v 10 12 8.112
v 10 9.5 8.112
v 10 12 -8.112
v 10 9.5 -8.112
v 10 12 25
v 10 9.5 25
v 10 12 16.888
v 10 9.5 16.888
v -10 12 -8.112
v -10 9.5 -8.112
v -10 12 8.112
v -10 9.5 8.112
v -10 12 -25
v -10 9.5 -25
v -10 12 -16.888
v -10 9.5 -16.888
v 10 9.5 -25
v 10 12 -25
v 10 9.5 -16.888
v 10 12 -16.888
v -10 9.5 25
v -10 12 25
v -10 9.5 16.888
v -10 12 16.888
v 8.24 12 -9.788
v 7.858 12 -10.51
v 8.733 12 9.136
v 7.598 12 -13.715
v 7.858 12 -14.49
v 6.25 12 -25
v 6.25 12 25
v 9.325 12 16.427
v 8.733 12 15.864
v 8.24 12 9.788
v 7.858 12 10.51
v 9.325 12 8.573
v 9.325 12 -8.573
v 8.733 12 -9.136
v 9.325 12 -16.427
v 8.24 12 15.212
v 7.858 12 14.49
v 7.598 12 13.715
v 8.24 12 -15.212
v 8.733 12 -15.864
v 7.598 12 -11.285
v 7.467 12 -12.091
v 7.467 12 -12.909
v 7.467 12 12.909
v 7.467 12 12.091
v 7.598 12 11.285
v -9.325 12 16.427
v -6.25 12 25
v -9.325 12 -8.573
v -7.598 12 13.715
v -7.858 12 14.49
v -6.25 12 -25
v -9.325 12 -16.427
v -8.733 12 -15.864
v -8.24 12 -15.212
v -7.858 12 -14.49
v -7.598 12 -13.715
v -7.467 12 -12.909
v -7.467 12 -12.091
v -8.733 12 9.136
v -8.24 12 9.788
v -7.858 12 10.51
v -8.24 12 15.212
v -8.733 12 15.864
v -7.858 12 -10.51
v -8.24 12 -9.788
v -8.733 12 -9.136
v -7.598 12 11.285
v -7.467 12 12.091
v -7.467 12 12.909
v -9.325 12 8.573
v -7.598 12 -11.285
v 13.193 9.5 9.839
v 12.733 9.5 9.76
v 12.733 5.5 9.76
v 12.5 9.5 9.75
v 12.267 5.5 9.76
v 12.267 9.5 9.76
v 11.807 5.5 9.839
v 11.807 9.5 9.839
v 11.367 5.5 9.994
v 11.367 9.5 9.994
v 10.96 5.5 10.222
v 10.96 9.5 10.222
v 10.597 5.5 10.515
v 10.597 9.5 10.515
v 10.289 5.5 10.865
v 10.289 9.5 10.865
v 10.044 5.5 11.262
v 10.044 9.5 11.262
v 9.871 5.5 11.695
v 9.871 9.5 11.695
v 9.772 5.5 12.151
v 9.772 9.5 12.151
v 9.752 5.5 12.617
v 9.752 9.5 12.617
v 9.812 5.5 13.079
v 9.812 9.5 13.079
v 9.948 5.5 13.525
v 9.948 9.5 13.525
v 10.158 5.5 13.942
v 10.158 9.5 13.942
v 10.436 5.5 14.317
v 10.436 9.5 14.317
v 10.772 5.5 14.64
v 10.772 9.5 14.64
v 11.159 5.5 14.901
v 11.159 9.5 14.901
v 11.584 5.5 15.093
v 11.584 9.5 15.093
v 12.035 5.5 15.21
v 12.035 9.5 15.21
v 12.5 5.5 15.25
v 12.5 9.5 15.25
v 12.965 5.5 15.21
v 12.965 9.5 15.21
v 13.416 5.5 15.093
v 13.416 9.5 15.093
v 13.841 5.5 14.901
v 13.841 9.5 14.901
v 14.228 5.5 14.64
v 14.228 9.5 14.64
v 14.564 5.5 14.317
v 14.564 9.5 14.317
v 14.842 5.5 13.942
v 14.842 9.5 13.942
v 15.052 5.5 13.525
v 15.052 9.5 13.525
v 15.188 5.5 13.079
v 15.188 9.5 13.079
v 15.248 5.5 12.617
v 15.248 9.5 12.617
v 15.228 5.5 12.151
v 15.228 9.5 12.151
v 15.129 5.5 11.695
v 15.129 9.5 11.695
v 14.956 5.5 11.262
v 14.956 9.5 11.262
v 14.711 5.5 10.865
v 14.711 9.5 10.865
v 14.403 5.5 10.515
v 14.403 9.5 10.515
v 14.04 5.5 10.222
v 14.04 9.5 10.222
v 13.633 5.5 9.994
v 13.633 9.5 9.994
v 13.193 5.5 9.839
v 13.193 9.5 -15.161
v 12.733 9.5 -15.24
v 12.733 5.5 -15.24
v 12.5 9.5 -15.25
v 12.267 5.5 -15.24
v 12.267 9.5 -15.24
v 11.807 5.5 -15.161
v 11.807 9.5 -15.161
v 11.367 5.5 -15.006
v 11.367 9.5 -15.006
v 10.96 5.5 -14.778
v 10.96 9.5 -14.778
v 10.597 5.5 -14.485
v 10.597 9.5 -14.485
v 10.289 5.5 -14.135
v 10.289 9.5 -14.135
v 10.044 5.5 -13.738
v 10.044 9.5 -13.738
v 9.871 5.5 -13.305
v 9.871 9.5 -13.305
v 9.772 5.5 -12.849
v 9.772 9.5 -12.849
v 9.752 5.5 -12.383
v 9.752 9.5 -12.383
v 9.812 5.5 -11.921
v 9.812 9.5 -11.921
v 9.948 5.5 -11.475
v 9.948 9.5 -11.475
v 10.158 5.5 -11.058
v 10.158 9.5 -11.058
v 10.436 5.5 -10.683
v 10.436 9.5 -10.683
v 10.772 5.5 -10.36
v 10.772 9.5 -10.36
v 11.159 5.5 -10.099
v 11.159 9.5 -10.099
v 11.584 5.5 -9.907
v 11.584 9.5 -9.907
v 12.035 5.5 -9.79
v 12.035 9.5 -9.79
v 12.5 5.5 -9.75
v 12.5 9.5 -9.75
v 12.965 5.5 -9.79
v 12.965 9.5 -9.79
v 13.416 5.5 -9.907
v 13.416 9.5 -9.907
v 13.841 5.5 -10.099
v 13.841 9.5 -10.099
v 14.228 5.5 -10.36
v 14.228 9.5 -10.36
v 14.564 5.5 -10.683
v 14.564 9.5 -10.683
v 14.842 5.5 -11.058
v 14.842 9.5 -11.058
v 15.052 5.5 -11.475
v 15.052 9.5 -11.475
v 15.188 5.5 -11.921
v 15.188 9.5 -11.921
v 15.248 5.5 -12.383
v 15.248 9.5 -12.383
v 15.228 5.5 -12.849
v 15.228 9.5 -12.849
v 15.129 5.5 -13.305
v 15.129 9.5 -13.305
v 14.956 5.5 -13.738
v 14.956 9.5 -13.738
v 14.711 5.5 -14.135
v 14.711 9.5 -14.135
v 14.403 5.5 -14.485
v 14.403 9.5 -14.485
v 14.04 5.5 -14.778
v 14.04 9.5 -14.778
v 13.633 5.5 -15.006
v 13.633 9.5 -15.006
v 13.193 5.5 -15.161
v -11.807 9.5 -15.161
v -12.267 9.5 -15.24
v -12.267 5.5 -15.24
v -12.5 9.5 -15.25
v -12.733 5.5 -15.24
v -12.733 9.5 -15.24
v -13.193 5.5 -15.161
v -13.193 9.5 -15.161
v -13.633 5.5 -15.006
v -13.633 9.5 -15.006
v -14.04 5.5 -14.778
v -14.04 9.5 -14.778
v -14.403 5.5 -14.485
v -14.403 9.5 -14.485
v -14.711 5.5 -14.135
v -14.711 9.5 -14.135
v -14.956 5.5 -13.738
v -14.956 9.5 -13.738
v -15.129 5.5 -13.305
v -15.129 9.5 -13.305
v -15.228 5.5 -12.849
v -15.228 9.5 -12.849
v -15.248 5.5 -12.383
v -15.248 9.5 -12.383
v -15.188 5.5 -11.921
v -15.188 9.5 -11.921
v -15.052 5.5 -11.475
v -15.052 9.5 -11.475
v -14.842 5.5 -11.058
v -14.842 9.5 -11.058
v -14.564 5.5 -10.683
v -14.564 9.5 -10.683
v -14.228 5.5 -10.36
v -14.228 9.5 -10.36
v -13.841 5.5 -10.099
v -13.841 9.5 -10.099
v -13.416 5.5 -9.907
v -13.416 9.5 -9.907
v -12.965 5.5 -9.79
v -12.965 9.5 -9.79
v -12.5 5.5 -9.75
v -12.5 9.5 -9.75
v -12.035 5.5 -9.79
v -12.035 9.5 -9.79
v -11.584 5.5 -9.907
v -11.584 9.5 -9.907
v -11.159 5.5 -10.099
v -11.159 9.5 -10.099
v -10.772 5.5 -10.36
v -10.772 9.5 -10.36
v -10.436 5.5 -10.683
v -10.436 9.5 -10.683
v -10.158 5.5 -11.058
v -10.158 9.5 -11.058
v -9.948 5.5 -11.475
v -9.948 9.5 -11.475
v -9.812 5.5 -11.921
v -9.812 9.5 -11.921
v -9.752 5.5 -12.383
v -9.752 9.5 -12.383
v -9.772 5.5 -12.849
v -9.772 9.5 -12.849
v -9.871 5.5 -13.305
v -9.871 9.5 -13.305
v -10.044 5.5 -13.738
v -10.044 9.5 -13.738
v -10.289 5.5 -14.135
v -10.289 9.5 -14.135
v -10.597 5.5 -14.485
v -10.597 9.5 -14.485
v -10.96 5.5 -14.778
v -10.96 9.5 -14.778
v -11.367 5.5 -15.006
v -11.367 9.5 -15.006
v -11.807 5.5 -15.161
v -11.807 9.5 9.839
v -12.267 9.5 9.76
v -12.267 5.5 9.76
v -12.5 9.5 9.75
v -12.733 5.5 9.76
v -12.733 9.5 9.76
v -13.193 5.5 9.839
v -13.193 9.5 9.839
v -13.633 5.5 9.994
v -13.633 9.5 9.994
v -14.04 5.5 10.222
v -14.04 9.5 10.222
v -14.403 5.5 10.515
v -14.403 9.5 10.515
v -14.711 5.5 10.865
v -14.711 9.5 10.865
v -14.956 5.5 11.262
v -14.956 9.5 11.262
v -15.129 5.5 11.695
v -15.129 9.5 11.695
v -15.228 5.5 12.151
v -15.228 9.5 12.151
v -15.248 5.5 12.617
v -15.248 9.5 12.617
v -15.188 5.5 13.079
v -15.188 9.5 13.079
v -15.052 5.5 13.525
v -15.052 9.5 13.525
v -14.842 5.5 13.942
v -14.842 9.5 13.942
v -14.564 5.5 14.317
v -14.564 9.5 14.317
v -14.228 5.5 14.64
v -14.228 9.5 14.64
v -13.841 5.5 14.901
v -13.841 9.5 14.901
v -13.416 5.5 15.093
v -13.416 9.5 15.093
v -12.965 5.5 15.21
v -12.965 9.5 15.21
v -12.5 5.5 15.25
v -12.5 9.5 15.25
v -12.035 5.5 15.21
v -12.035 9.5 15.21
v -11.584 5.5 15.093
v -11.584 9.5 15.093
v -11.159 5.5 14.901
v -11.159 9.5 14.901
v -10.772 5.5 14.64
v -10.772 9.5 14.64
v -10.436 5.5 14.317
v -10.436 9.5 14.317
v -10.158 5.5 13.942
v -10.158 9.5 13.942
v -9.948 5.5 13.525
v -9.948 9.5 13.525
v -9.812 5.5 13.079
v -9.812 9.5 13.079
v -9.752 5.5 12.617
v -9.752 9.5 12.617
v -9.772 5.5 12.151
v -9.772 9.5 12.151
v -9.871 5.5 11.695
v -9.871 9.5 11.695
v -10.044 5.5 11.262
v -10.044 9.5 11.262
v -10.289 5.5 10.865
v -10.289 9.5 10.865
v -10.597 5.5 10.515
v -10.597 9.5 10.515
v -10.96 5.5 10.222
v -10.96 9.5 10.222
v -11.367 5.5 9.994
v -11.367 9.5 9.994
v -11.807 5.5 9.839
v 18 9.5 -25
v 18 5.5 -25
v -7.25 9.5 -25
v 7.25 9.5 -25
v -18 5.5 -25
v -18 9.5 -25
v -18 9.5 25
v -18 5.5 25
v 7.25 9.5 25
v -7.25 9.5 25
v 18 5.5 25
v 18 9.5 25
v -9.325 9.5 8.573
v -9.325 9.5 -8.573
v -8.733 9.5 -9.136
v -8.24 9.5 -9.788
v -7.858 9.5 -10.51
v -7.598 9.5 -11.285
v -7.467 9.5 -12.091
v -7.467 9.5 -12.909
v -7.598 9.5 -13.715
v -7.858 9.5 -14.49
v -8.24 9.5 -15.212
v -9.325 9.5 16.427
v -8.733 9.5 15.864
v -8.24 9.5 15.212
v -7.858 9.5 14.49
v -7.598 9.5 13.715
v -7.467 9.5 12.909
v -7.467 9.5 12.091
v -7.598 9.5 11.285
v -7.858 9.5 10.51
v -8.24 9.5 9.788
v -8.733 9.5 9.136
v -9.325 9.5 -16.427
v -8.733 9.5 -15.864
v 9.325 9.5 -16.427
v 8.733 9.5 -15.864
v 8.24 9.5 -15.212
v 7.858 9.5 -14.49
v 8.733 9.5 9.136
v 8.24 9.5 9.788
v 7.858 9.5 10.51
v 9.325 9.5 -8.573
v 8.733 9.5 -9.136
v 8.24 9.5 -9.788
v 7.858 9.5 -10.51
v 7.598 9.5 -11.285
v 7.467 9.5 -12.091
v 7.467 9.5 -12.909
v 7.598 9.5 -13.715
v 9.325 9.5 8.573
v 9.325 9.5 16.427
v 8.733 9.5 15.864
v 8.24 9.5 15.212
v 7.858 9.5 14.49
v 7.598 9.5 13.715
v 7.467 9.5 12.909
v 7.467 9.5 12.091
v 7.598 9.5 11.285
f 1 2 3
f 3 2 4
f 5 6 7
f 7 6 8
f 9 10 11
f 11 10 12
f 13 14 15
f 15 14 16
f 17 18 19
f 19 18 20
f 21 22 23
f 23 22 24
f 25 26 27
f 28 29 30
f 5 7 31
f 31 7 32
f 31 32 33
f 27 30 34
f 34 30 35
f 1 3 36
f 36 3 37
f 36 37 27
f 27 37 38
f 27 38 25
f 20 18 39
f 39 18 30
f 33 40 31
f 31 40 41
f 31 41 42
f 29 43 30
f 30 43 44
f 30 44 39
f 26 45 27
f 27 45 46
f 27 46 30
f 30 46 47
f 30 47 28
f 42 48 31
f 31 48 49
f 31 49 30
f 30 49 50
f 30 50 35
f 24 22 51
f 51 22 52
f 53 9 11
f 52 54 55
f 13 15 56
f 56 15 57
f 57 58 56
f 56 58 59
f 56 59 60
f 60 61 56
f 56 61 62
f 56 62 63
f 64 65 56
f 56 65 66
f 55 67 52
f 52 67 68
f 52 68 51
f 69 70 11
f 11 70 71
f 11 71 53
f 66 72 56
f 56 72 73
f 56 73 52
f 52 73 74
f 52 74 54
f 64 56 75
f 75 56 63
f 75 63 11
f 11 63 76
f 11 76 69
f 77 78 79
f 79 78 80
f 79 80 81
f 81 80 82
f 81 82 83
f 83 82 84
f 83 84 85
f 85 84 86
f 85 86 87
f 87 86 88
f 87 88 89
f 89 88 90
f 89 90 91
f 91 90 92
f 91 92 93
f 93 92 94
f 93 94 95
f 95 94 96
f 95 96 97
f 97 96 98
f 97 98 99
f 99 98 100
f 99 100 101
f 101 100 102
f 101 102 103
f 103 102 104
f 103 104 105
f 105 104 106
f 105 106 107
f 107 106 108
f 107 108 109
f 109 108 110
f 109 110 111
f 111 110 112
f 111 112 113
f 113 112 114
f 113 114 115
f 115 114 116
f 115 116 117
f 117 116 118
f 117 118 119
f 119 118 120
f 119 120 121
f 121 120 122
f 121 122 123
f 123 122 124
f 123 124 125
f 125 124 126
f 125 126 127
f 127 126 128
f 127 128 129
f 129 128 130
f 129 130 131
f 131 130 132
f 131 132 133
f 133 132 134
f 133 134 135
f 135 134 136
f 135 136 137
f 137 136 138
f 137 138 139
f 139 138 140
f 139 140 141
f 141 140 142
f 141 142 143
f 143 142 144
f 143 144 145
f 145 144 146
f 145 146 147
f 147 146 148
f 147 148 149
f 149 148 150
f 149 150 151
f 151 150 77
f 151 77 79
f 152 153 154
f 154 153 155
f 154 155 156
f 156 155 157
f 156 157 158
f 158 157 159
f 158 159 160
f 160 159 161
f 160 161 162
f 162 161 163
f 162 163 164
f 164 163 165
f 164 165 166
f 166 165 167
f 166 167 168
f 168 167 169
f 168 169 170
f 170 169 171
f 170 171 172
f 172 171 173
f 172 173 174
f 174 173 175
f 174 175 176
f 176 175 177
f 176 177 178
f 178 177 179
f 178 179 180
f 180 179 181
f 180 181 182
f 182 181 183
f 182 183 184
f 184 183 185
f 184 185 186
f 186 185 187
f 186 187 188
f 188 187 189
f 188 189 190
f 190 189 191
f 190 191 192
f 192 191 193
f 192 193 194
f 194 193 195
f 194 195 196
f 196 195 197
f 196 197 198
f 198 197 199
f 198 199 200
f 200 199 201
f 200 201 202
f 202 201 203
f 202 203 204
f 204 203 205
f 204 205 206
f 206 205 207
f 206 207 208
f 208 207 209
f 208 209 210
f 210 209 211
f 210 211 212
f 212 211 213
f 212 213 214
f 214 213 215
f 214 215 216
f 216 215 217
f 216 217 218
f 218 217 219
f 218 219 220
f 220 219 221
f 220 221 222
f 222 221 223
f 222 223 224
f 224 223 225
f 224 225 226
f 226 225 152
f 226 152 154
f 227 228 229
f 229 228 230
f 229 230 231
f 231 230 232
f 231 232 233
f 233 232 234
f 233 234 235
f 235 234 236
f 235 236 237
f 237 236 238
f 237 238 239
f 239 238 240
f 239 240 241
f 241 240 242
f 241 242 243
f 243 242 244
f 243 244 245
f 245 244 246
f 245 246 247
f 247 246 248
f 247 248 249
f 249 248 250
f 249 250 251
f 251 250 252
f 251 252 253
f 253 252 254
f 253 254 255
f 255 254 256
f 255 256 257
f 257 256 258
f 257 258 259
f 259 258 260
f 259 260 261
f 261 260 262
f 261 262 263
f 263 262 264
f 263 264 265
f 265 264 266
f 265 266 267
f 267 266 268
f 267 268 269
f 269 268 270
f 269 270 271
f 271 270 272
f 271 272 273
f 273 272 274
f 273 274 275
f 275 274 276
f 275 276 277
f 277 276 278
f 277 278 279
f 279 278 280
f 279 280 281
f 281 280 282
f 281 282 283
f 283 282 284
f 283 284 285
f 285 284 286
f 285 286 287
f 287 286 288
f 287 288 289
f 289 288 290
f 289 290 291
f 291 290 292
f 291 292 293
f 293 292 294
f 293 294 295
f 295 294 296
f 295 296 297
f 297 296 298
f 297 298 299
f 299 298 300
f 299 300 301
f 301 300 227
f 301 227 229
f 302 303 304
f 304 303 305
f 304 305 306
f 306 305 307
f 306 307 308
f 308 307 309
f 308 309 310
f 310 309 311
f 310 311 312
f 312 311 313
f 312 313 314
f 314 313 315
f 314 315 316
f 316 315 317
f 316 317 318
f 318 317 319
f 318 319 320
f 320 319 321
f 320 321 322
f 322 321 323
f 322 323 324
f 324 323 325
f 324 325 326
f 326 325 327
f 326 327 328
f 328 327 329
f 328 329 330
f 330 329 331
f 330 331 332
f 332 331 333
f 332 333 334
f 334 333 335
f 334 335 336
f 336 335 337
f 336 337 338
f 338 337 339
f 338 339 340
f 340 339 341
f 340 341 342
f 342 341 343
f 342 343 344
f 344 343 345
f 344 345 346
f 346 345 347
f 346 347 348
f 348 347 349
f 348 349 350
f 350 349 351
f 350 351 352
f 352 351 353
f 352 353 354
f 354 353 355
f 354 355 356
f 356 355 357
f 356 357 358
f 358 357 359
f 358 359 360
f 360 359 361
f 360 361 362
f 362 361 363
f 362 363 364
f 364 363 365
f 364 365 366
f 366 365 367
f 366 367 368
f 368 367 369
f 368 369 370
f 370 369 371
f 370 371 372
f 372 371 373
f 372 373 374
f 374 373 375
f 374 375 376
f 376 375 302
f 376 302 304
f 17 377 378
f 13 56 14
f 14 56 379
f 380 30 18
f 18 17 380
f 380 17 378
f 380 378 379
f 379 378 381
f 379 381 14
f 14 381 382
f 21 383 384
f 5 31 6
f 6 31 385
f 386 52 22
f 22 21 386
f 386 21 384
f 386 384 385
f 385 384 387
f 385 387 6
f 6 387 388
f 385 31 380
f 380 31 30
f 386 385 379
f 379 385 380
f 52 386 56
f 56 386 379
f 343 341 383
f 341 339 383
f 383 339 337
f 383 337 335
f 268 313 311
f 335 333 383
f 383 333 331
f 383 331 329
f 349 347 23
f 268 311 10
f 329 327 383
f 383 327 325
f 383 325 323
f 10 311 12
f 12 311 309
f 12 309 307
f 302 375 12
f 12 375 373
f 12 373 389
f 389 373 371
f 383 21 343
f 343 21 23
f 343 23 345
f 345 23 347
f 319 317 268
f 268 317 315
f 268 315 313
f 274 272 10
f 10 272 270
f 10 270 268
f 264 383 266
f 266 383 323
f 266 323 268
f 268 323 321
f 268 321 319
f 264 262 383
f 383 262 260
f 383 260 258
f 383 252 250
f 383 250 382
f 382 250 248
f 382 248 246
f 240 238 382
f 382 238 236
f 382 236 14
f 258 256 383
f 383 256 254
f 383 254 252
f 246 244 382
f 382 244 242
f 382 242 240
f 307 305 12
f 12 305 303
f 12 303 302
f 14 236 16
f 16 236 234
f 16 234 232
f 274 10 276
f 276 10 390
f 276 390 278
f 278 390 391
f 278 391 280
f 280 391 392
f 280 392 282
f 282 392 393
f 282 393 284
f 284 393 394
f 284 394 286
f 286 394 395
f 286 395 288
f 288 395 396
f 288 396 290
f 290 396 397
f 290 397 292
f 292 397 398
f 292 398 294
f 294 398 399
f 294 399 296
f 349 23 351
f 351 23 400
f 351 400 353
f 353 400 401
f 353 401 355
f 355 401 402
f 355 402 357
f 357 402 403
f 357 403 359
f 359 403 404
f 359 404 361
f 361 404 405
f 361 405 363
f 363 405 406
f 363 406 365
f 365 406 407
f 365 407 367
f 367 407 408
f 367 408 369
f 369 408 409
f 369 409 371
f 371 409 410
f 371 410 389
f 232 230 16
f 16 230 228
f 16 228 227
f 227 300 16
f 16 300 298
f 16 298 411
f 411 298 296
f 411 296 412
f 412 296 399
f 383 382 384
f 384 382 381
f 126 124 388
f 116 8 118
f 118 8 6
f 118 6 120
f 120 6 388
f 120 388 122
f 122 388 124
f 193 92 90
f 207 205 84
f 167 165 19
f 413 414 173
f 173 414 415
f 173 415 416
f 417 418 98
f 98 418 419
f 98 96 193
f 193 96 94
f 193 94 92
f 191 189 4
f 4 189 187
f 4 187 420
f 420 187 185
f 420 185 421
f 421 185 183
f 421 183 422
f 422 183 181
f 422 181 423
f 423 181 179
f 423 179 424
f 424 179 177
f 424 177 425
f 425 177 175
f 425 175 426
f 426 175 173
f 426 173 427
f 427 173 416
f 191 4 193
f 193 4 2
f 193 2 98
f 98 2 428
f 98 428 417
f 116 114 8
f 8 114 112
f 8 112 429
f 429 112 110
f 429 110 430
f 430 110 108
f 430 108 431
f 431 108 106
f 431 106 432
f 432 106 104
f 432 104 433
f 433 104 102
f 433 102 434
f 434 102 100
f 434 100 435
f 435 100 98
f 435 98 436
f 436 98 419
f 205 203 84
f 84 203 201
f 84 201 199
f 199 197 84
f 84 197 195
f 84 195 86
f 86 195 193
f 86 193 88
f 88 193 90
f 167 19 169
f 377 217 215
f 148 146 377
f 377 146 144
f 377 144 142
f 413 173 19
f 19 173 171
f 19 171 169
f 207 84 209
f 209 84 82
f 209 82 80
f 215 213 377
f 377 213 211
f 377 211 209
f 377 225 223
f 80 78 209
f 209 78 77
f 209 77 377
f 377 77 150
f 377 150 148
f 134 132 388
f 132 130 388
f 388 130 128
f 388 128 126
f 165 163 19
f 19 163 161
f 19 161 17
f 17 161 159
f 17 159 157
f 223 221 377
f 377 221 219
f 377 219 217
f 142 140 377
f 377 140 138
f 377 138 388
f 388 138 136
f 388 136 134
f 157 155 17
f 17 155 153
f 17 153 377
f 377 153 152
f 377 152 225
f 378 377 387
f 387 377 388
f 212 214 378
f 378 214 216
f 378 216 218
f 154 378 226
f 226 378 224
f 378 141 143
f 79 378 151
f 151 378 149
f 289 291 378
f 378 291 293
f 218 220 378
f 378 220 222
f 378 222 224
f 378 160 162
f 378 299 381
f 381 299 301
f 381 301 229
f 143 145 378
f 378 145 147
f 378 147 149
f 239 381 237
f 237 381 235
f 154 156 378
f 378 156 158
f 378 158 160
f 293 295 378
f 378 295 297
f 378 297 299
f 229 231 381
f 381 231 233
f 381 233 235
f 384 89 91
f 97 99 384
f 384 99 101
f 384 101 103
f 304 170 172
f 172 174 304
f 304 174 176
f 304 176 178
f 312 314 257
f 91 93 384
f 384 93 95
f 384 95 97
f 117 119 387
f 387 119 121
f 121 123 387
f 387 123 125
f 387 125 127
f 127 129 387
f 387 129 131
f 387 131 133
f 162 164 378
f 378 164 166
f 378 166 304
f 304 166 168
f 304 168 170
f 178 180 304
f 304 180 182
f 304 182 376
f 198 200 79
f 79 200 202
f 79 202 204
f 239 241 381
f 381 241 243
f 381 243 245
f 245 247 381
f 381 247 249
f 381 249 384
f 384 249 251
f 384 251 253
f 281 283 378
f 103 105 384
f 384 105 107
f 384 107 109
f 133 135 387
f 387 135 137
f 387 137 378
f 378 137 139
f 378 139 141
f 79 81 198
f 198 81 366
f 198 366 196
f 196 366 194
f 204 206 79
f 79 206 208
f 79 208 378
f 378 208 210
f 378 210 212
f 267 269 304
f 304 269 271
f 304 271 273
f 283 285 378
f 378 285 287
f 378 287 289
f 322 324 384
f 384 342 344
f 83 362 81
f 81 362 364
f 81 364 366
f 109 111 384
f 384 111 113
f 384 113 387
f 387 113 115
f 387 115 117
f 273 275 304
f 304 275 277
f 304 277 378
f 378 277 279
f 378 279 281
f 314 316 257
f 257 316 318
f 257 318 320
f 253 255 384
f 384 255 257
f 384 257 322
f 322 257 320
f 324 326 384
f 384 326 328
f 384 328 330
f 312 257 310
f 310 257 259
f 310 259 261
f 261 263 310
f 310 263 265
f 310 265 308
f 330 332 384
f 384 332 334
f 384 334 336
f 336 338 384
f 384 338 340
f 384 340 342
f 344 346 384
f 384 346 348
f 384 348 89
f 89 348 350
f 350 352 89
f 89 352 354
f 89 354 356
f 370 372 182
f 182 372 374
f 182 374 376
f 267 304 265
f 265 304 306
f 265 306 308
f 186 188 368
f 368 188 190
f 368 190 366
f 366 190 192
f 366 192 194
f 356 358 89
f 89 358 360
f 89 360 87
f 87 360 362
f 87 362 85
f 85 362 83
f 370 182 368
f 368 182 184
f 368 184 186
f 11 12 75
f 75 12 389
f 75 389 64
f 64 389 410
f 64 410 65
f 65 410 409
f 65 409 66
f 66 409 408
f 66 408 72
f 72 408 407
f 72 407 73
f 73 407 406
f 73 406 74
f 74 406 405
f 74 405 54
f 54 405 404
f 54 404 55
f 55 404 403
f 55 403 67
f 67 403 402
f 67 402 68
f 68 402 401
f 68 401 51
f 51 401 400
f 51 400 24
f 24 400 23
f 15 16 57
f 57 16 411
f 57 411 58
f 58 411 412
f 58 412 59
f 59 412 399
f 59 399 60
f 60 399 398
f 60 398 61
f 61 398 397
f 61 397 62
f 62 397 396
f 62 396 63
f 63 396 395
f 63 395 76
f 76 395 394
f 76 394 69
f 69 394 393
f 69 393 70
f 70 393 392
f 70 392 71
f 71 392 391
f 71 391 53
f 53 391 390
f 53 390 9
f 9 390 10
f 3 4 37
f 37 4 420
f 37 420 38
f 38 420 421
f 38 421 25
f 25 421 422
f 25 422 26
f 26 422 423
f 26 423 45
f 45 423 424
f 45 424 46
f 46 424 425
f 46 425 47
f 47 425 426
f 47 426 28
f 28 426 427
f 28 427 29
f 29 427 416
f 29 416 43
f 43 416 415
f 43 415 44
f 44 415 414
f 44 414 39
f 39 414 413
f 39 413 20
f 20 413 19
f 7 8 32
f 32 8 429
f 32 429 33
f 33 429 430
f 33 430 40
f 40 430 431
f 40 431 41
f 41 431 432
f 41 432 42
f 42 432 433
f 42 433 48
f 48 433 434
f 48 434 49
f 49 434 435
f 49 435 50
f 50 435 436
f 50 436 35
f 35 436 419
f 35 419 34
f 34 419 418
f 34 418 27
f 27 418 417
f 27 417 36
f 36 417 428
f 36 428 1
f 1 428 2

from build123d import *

# Parameters (mm, degrees)
SKETCH1_W               = 20
SKETCH1_H               = 50
BOSS_EXTRUDE1_DEPTH     = 12
CUT_EXTRUDE1_REACH      = 54.383
SKETCH4_W               = 50
SKETCH4_H               = 9.5
BOSS_EXTRUDE2_DEPTH     = 8
SKETCH5_W               = 50
SKETCH5_H               = 9.5
BOSS_EXTRUDE3_DEPTH     = 8
CUT_EXTRUDE4_DEPTH      = 33.23740064
CUT_EXTRUDE4_DEPTH_BACK = 33.23740064
SKETCH10_R              = 2.75
SKETCH13_W              = 36
SKETCH13_H              = 50
CUT_EXTRUDE6_DEPTH      = 5.5
CUT_EXTRUDE7_REACH      = 33.064
SKETCH14_R              = 5.05


with BuildPart() as part:
    # Sketch1 → Boss-Extrude1 (new body)
    with BuildSketch(Plane(origin=(0, 0, 0), x_dir=(1, 0, 0), z_dir=(0, 1, 0))):
        Rectangle(SKETCH1_W, SKETCH1_H)
    extrude(amount=BOSS_EXTRUDE1_DEPTH)

    # Sketch2 → Cut-Extrude1 (cut, up to next)
    with BuildSketch(Plane.XY.offset(25), mode=Mode.PRIVATE) as cut_extrude1_sk1:
        Polygon((0, 9.5), (7.25, 9.5), (6.25, 12), (0, 12), (-6.25, 12), (-7.25, 9.5), align=None)
    cut_extrude1_tool1 = extrude(cut_extrude1_sk1.sketch, amount=-CUT_EXTRUDE1_REACH, mode=Mode.PRIVATE) & part.part
    add(cut_extrude1_tool1.solids().sort_by_distance((0, 10.719136, 25))[0], mode=Mode.SUBTRACT)

    # Sketch4 → Boss-Extrude2 (add)
    with BuildSketch(Plane.ZY.offset(10)):
        with Locations((0, 4.75)):
            Rectangle(SKETCH4_W, SKETCH4_H)
    extrude(amount=BOSS_EXTRUDE2_DEPTH)

    # Sketch5 → Boss-Extrude3 (add)
    with BuildSketch(Plane(origin=(10, 0, 0), x_dir=(0, 0, -1), z_dir=(1, 0, 0))):
        with Locations((0, 4.75)):
            Rectangle(SKETCH5_W, SKETCH5_H)
    extrude(amount=BOSS_EXTRUDE3_DEPTH)

    # Sketch10 → Cut-Extrude4 (cut, two sides: drawn at the far end of the back side and taken through both)
    with BuildSketch(Plane(origin=(0, 9.5, 0), x_dir=(1, 0, 0), z_dir=(0, 1, 0)).offset(-CUT_EXTRUDE4_DEPTH_BACK)):
        with Locations(Location((-12.5, 12.5, 0), (0, 0, 270))):
            Circle(SKETCH10_R)
        with Locations(Location((12.5, 12.5, 0), (0, 0, 270))):
            Circle(SKETCH10_R)
        with Locations(Location((-12.5, -12.5, 0), (0, 0, 270))):
            Circle(SKETCH10_R)
        with Locations(Location((12.5, -12.5, 0), (0, 0, 270))):
            Circle(SKETCH10_R)
    extrude(amount=CUT_EXTRUDE4_DEPTH + CUT_EXTRUDE4_DEPTH_BACK, mode=Mode.SUBTRACT)

    # Sketch13 → Cut-Extrude6 (cut)
    with BuildSketch(Plane.XZ):
        Rectangle(SKETCH13_W, SKETCH13_H)
    extrude(amount=-CUT_EXTRUDE6_DEPTH, mode=Mode.SUBTRACT)

    # Sketch14 → Cut-Extrude7 (cut, up to next)
    with BuildSketch(Plane(origin=(0, 9.5, 0), x_dir=(1, 0, 0), z_dir=(0, 1, 0)), mode=Mode.PRIVATE) as cut_extrude7_sk1:
        with Locations((-12.5, 12.5)):
            Circle(SKETCH14_R)
    cut_extrude7_tool1 = extrude(cut_extrude7_sk1.sketch, amount=CUT_EXTRUDE7_REACH, mode=Mode.PRIVATE) & part.part
    # Sketch14 → Cut-Extrude7 (cut, up to next)
    with BuildSketch(Plane(origin=(0, 9.5, 0), x_dir=(1, 0, 0), z_dir=(0, 1, 0)), mode=Mode.PRIVATE) as cut_extrude7_sk2:
        with Locations((12.5, 12.5)):
            Circle(SKETCH14_R)
    cut_extrude7_tool2 = extrude(cut_extrude7_sk2.sketch, amount=CUT_EXTRUDE7_REACH, mode=Mode.PRIVATE) & part.part
    # Sketch14 → Cut-Extrude7 (cut, up to next)
    with BuildSketch(Plane(origin=(0, 9.5, 0), x_dir=(1, 0, 0), z_dir=(0, 1, 0)), mode=Mode.PRIVATE) as cut_extrude7_sk3:
        with Locations((-12.5, -12.5)):
            Circle(SKETCH14_R)
    cut_extrude7_tool3 = extrude(cut_extrude7_sk3.sketch, amount=CUT_EXTRUDE7_REACH, mode=Mode.PRIVATE) & part.part
    # Sketch14 → Cut-Extrude7 (cut, up to next)
    with BuildSketch(Plane(origin=(0, 9.5, 0), x_dir=(1, 0, 0), z_dir=(0, 1, 0)), mode=Mode.PRIVATE) as cut_extrude7_sk4:
        with Locations((12.5, -12.5)):
            Circle(SKETCH14_R)
    cut_extrude7_tool4 = extrude(cut_extrude7_sk4.sketch, amount=CUT_EXTRUDE7_REACH, mode=Mode.PRIVATE) & part.part
    add(cut_extrude7_tool1.solids().sort_by_distance((-12.5, 9.5, -12.5))[0], mode=Mode.SUBTRACT)
    add(cut_extrude7_tool2.solids().sort_by_distance((12.5, 9.5, -12.5))[0], mode=Mode.SUBTRACT)
    add(cut_extrude7_tool3.solids().sort_by_distance((-12.5, 9.5, 12.5))[0], mode=Mode.SUBTRACT)
    add(cut_extrude7_tool4.solids().sort_by_distance((12.5, 9.5, 12.5))[0], mode=Mode.SUBTRACT)


solid = part.part
